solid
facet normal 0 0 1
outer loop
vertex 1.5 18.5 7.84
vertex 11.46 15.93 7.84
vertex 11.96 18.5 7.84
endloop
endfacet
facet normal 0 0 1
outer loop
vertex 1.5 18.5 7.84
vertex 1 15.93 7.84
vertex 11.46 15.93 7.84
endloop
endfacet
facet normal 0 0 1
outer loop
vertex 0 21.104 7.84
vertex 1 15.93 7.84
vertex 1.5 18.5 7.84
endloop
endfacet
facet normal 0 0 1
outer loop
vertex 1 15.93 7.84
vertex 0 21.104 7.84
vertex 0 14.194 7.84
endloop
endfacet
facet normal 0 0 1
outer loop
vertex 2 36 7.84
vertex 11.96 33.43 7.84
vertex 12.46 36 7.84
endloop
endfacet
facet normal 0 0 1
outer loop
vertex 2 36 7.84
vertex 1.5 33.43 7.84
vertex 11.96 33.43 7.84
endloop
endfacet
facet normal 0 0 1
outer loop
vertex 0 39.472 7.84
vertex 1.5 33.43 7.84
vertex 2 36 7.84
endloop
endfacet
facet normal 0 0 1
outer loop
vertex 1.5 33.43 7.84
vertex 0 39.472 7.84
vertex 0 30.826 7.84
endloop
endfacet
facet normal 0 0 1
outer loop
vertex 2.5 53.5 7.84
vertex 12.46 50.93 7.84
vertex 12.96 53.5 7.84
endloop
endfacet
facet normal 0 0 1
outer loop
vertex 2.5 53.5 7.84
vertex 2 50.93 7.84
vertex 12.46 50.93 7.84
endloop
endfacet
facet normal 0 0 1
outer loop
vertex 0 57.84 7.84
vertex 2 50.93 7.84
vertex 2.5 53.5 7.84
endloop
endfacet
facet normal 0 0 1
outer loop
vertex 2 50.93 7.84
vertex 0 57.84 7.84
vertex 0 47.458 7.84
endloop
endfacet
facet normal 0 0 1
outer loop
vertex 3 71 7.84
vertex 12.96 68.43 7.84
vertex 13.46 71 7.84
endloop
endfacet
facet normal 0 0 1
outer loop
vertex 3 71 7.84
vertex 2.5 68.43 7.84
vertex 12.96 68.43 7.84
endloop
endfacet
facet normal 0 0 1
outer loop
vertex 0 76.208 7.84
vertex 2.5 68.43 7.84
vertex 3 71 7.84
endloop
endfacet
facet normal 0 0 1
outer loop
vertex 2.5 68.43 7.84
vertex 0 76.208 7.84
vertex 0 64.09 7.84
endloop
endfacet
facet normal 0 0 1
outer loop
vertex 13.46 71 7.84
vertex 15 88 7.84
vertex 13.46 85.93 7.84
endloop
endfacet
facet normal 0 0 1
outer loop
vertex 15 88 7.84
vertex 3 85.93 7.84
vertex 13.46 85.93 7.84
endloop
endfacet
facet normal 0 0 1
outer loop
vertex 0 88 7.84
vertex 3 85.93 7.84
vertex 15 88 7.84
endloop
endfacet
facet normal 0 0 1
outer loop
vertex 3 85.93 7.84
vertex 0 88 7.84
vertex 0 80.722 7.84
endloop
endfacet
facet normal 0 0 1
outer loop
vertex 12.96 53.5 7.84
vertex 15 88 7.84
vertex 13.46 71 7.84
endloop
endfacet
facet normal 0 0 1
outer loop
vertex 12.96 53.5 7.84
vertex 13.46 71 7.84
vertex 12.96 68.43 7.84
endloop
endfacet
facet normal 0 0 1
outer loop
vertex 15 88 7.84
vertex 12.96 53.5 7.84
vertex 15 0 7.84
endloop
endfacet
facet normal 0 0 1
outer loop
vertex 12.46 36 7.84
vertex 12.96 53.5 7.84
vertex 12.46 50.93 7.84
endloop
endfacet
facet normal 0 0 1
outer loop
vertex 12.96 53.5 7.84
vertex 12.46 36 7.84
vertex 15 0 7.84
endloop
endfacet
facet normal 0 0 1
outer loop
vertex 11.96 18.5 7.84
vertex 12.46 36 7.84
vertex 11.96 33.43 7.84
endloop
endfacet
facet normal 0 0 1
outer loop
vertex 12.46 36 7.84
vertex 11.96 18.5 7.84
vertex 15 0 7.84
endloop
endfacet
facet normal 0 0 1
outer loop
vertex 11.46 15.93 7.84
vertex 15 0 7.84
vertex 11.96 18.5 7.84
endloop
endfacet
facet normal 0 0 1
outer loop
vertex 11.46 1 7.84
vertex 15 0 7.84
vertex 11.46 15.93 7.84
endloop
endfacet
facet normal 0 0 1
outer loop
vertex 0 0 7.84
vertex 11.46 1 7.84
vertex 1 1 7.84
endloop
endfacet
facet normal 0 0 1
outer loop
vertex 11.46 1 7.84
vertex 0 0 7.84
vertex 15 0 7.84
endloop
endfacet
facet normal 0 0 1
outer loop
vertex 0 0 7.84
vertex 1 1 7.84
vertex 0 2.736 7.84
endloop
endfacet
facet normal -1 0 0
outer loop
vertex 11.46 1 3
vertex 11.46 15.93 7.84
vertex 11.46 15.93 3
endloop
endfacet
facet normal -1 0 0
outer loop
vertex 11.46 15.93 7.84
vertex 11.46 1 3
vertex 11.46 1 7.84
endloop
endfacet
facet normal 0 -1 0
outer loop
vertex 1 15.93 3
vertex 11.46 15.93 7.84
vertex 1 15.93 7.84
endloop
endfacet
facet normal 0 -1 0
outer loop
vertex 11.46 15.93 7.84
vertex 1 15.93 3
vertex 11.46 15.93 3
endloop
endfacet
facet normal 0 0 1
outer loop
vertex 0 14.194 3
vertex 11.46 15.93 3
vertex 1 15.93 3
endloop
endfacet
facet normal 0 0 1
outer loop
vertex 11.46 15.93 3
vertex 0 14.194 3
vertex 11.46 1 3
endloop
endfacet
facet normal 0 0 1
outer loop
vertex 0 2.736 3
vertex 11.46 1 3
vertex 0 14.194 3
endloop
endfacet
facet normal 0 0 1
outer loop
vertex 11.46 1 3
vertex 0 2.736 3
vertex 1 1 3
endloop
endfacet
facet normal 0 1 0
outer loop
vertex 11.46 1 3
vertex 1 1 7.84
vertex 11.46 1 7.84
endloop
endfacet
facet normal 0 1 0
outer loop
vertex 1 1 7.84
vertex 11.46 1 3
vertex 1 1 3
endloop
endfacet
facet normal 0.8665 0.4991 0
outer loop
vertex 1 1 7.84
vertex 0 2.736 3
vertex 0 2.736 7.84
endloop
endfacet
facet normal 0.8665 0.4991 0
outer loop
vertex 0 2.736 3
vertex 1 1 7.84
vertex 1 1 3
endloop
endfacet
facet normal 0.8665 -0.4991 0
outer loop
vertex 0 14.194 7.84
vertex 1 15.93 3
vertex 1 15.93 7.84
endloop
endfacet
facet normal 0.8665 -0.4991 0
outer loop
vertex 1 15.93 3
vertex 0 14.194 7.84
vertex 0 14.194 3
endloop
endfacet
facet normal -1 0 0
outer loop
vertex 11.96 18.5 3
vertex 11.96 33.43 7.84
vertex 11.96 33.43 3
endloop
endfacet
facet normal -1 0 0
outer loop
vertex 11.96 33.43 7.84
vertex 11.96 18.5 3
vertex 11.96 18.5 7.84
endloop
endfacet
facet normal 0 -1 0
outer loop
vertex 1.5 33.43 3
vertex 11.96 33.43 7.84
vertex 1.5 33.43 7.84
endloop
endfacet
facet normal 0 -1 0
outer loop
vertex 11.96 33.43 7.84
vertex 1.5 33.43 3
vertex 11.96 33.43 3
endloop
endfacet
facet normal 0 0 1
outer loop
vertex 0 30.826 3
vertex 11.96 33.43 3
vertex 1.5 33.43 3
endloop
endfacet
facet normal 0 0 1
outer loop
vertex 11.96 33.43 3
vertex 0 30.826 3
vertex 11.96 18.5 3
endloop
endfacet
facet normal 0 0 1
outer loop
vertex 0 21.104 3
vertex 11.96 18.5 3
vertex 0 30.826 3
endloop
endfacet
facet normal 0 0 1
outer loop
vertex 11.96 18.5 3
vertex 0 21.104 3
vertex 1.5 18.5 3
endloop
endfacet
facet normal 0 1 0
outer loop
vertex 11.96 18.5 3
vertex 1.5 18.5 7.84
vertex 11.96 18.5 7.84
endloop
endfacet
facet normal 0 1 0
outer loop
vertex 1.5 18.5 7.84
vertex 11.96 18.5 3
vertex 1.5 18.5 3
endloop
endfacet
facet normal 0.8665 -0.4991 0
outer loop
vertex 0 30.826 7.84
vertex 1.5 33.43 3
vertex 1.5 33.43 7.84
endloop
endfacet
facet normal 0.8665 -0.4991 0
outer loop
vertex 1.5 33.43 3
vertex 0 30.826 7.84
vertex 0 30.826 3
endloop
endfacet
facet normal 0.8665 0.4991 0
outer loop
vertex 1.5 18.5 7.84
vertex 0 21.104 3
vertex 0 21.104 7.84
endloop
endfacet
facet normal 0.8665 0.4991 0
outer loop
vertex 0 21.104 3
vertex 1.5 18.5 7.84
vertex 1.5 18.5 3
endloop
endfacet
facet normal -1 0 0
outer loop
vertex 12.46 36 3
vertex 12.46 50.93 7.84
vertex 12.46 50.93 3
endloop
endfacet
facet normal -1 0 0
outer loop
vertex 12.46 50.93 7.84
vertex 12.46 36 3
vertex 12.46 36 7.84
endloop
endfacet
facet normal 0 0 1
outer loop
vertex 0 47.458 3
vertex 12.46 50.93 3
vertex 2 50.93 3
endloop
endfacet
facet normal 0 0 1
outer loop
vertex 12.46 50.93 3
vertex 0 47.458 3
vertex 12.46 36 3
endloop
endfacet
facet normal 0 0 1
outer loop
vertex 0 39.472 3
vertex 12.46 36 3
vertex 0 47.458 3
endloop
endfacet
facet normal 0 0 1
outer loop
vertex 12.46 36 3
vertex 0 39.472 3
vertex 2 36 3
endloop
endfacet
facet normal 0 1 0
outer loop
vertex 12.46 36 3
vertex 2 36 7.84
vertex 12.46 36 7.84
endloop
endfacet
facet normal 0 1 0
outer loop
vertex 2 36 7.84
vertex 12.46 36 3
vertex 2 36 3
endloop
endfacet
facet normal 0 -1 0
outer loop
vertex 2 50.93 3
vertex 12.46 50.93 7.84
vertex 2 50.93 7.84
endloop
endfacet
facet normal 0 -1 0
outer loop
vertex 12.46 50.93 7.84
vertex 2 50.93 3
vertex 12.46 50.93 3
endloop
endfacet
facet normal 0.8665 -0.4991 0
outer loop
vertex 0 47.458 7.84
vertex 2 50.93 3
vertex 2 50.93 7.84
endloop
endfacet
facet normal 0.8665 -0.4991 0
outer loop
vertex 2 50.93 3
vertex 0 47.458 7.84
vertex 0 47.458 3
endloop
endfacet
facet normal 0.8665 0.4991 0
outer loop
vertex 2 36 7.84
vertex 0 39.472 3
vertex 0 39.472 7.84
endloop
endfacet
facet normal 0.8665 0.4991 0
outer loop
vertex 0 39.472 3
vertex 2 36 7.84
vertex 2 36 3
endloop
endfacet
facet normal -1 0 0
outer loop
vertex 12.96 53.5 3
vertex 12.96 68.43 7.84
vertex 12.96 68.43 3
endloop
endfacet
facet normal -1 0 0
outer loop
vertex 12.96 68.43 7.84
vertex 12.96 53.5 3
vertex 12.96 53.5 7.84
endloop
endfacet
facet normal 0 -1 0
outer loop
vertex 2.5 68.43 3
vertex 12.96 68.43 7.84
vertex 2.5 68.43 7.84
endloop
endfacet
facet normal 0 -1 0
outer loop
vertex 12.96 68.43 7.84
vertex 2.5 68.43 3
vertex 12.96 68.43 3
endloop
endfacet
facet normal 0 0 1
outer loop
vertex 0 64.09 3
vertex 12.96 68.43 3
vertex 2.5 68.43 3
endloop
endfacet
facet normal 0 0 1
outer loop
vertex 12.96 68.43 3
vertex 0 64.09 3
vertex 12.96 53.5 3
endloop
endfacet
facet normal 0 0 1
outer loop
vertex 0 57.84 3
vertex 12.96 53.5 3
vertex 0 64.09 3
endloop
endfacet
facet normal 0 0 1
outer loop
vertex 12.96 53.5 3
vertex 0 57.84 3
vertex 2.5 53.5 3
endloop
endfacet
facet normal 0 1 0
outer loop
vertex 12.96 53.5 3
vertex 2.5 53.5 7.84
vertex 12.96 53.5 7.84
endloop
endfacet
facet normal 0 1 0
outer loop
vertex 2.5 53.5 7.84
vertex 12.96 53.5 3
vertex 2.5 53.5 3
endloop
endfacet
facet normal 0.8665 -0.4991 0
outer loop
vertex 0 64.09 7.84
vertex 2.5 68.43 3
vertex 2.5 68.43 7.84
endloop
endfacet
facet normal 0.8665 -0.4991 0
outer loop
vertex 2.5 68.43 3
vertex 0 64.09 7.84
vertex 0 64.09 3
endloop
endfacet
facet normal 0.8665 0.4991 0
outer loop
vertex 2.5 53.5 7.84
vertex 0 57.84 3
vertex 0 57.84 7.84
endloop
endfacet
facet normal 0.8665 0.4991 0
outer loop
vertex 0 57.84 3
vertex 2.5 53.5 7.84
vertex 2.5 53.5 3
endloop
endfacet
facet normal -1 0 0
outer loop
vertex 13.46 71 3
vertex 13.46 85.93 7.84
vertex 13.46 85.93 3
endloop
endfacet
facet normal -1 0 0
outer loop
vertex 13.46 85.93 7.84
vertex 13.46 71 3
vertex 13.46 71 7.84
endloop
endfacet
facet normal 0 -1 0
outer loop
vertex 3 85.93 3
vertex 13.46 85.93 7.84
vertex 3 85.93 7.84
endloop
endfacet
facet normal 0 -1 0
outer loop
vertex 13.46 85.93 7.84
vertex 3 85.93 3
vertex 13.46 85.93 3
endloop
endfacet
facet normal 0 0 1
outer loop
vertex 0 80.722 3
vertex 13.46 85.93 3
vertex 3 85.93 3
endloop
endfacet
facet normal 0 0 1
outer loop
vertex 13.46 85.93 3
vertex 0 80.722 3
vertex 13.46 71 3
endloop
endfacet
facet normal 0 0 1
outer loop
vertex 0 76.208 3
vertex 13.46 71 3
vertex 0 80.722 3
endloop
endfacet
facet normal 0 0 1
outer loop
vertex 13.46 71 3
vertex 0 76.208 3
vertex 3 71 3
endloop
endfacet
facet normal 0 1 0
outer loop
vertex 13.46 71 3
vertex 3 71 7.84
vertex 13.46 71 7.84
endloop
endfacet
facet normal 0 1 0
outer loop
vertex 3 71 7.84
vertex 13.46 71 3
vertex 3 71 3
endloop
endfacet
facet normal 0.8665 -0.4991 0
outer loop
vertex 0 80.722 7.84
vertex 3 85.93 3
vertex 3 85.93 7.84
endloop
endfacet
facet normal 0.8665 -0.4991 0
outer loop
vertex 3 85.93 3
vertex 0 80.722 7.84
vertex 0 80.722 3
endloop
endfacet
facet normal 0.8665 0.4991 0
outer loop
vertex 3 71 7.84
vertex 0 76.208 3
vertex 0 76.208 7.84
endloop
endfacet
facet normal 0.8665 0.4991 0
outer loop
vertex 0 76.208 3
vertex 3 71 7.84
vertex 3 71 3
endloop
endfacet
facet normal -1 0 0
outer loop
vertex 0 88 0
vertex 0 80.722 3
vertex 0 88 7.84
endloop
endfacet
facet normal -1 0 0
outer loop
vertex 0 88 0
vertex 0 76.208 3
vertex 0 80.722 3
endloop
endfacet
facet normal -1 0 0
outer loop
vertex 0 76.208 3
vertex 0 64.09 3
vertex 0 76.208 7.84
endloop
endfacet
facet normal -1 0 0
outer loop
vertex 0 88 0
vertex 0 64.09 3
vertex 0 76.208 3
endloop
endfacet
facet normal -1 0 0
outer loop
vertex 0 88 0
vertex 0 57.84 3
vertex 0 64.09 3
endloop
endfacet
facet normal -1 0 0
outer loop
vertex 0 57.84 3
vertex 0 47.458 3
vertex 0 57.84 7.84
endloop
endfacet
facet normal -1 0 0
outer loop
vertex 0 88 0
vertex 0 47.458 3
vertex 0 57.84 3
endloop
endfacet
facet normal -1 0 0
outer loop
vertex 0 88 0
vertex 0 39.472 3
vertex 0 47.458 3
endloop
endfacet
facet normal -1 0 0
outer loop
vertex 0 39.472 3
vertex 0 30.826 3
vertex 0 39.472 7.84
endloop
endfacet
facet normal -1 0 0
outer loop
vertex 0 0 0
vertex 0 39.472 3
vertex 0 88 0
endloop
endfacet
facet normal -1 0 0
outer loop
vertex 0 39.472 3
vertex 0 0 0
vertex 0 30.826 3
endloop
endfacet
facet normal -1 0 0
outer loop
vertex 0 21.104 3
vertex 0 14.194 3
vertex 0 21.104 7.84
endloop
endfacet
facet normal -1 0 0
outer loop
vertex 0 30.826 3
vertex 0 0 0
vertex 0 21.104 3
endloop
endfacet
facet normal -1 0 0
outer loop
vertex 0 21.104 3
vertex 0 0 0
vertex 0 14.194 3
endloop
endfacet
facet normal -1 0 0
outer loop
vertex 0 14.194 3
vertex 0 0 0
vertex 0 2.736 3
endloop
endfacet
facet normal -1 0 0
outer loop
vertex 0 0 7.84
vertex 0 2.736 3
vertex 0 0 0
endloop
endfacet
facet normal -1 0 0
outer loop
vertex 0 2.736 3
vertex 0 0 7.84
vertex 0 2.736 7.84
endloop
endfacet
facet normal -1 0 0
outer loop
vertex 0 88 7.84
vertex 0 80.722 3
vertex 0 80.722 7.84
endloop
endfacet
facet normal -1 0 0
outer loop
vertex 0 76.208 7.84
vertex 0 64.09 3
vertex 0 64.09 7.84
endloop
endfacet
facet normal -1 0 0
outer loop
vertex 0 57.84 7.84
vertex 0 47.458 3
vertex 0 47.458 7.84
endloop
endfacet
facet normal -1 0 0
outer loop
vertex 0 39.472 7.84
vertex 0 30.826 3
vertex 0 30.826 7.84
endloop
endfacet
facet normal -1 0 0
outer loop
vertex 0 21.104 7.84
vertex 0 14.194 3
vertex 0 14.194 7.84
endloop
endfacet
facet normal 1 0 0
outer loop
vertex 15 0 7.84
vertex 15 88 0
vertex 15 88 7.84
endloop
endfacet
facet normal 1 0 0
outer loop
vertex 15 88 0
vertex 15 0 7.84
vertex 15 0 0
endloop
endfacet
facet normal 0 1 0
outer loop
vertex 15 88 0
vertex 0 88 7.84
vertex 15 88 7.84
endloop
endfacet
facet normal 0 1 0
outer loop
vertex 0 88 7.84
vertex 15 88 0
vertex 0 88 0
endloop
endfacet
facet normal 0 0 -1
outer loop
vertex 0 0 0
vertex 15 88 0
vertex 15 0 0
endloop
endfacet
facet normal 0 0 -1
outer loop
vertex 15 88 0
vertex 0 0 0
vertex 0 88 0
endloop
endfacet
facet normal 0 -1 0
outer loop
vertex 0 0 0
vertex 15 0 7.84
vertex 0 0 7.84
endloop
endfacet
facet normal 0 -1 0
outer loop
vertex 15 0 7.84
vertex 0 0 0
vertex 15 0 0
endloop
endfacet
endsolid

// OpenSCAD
// file: SquareWithTrianglePileLib.scad
module LeftPile(wallThickness, totalHeight, singlePileHeight, singlePileWidth, singlePileLength, pileCount, openingSizePercent = .5){
    pileHeight = (pileCount * singlePileHeight) + .5;
    lengthOpeningSize = .00001;
    widthOpeningSize = singlePileWidth * openingSizePercent;
    blockerSize = (singlePileWidth - widthOpeningSize) / 2;
    
    translate([wallThickness, wallThickness, totalHeight - pileHeight])
        cube([singlePileLength, singlePileWidth, pileHeight]);
    
    y = singlePileWidth;
    a = 4.3;
    height = pileHeight;
    translate([wallThickness, wallThickness, totalHeight - pileHeight])
        rotate([0,0,90])
            polyhedron(
                points = 
                [
                    [0,0,0],
                    [y,0,0],
                    [y/2,a,0],
                    [0,0,height],
                    [y,0,height],
                    [y/2,a,height],
                ],
                faces = 
                [
                    [0,1,2],
                    [3,4,1,0],
                    [3,5,4],
                    [4,5,2,1],
                    [5,3,0,2]
                ]);   
    
//    translate([-.00001, wallThickness + (blockerSize), 0])
//        cube([wallThickness + lengthOpeningSize, widthOpeningSize, totalHeight]);
}

module RightPile(wallThickness, totalHeight, singlePileHeight, singlePileWidth, singlePileLength, pileCount, openingSizePercent = .75){
    translate([0, wallThickness + wallThickness + singlePileWidth, 0])
        rotate([0, 0, 180])
            LeftPile(wallThickness, totalHeight, singlePileHeight, singlePileWidth, singlePileLength, pileCount, openingSizePercent);
}

module BottomPile(wallThickness, totalHeight, singlePileHeight, singlePileWidth, singlePileLength, pileCount, openingSizePercent = .75){
    translate([wallThickness + wallThickness + singlePileWidth, 0, 0])
        rotate([0, 0, 90])
            LeftPile(wallThickness, totalHeight, singlePileHeight, singlePileWidth, singlePileLength, pileCount, openingSizePercent);
}

module TopPile(wallThickness, totalHeight, singlePileHeight, singlePileWidth, singlePileLength, pileCount, openingSizePercent = .75){
        rotate([0, 0, 270])
            LeftPile(wallThickness, totalHeight, singlePileHeight, singlePileWidth, singlePileLength, pileCount, openingSizePercent);
}
// file: SpaceAlertThreatTokensLib.scad
include<SquareWithTrianglePileLib.scad>
//side of triangle: 7.85
//sin x = o/h = 
singleThreatTokenPileHeight = 2.17;
singleThreatTokenPileWidth = 14.23 + .7;
singleThreatTokenPileLength = 9.76 + .7;

module LeftThreatTokenPile(wallThickness, totalHeight, threatTokenPileCount){
    LeftPile(
        wallThickness,
        totalHeight,
        singleThreatTokenPileHeight,
        singleThreatTokenPileWidth,
        singleThreatTokenPileLength,
        threatTokenPileCount);
}

module RightThreatTokenPile(wallThickness, totalHeight, threatTokenPileCount){
    RightPile(
        wallThickness,
        totalHeight,
        singleThreatTokenPileHeight,
        singleThreatTokenPileWidth,
        singleThreatTokenPileLength,
        threatTokenPileCount);
}

module BottomThreatTokenPile(wallThickness, totalHeight, threatTokenPileCount){
    BottomPile(
        wallThickness,
        totalHeight,
        singleThreatTokenPileHeight,
        singleThreatTokenPileWidth,
        singleThreatTokenPileLength,
        threatTokenPileCount);
}

module TopThreatTokenPile(wallThickness, totalHeight, threatTokenPileCount){
    TopPile(
        wallThickness,
        totalHeight,
        singleThreatTokenPileHeight,
        singleThreatTokenPileWidth,
        singleThreatTokenPileLength,
        threatTokenPileCount);
}

function threatTokenPileHeight(threatTokenPileCount) =
    (threatTokenPileCount * singleThreatTokenPileHeight) + .5;
// main file
include<SpaceAlertThreatTokensLib.scad>
difference() {
    testBoxHeight = threatTokenPileHeight(2) + 3;
    testBoxLength = 15;
    testBoxWidth = 88;
    wallThickness = 2;
    
    cube([testBoxLength, testBoxWidth, testBoxHeight]);
    LeftThreatTokenPile(1, testBoxHeight, 2);
    translate([0, 17, 0])
        LeftThreatTokenPile(1.5, testBoxHeight, 2);
    translate([0, 34, 0])
        LeftThreatTokenPile(2, testBoxHeight, 2);
    translate([0, 51, 0])
        LeftThreatTokenPile(2.5, testBoxHeight, 2);
    translate([0, 68, 0])
        LeftThreatTokenPile(3, testBoxHeight, 2);
//    translate([100 - (15.05 + .8), 0, 0])

}
